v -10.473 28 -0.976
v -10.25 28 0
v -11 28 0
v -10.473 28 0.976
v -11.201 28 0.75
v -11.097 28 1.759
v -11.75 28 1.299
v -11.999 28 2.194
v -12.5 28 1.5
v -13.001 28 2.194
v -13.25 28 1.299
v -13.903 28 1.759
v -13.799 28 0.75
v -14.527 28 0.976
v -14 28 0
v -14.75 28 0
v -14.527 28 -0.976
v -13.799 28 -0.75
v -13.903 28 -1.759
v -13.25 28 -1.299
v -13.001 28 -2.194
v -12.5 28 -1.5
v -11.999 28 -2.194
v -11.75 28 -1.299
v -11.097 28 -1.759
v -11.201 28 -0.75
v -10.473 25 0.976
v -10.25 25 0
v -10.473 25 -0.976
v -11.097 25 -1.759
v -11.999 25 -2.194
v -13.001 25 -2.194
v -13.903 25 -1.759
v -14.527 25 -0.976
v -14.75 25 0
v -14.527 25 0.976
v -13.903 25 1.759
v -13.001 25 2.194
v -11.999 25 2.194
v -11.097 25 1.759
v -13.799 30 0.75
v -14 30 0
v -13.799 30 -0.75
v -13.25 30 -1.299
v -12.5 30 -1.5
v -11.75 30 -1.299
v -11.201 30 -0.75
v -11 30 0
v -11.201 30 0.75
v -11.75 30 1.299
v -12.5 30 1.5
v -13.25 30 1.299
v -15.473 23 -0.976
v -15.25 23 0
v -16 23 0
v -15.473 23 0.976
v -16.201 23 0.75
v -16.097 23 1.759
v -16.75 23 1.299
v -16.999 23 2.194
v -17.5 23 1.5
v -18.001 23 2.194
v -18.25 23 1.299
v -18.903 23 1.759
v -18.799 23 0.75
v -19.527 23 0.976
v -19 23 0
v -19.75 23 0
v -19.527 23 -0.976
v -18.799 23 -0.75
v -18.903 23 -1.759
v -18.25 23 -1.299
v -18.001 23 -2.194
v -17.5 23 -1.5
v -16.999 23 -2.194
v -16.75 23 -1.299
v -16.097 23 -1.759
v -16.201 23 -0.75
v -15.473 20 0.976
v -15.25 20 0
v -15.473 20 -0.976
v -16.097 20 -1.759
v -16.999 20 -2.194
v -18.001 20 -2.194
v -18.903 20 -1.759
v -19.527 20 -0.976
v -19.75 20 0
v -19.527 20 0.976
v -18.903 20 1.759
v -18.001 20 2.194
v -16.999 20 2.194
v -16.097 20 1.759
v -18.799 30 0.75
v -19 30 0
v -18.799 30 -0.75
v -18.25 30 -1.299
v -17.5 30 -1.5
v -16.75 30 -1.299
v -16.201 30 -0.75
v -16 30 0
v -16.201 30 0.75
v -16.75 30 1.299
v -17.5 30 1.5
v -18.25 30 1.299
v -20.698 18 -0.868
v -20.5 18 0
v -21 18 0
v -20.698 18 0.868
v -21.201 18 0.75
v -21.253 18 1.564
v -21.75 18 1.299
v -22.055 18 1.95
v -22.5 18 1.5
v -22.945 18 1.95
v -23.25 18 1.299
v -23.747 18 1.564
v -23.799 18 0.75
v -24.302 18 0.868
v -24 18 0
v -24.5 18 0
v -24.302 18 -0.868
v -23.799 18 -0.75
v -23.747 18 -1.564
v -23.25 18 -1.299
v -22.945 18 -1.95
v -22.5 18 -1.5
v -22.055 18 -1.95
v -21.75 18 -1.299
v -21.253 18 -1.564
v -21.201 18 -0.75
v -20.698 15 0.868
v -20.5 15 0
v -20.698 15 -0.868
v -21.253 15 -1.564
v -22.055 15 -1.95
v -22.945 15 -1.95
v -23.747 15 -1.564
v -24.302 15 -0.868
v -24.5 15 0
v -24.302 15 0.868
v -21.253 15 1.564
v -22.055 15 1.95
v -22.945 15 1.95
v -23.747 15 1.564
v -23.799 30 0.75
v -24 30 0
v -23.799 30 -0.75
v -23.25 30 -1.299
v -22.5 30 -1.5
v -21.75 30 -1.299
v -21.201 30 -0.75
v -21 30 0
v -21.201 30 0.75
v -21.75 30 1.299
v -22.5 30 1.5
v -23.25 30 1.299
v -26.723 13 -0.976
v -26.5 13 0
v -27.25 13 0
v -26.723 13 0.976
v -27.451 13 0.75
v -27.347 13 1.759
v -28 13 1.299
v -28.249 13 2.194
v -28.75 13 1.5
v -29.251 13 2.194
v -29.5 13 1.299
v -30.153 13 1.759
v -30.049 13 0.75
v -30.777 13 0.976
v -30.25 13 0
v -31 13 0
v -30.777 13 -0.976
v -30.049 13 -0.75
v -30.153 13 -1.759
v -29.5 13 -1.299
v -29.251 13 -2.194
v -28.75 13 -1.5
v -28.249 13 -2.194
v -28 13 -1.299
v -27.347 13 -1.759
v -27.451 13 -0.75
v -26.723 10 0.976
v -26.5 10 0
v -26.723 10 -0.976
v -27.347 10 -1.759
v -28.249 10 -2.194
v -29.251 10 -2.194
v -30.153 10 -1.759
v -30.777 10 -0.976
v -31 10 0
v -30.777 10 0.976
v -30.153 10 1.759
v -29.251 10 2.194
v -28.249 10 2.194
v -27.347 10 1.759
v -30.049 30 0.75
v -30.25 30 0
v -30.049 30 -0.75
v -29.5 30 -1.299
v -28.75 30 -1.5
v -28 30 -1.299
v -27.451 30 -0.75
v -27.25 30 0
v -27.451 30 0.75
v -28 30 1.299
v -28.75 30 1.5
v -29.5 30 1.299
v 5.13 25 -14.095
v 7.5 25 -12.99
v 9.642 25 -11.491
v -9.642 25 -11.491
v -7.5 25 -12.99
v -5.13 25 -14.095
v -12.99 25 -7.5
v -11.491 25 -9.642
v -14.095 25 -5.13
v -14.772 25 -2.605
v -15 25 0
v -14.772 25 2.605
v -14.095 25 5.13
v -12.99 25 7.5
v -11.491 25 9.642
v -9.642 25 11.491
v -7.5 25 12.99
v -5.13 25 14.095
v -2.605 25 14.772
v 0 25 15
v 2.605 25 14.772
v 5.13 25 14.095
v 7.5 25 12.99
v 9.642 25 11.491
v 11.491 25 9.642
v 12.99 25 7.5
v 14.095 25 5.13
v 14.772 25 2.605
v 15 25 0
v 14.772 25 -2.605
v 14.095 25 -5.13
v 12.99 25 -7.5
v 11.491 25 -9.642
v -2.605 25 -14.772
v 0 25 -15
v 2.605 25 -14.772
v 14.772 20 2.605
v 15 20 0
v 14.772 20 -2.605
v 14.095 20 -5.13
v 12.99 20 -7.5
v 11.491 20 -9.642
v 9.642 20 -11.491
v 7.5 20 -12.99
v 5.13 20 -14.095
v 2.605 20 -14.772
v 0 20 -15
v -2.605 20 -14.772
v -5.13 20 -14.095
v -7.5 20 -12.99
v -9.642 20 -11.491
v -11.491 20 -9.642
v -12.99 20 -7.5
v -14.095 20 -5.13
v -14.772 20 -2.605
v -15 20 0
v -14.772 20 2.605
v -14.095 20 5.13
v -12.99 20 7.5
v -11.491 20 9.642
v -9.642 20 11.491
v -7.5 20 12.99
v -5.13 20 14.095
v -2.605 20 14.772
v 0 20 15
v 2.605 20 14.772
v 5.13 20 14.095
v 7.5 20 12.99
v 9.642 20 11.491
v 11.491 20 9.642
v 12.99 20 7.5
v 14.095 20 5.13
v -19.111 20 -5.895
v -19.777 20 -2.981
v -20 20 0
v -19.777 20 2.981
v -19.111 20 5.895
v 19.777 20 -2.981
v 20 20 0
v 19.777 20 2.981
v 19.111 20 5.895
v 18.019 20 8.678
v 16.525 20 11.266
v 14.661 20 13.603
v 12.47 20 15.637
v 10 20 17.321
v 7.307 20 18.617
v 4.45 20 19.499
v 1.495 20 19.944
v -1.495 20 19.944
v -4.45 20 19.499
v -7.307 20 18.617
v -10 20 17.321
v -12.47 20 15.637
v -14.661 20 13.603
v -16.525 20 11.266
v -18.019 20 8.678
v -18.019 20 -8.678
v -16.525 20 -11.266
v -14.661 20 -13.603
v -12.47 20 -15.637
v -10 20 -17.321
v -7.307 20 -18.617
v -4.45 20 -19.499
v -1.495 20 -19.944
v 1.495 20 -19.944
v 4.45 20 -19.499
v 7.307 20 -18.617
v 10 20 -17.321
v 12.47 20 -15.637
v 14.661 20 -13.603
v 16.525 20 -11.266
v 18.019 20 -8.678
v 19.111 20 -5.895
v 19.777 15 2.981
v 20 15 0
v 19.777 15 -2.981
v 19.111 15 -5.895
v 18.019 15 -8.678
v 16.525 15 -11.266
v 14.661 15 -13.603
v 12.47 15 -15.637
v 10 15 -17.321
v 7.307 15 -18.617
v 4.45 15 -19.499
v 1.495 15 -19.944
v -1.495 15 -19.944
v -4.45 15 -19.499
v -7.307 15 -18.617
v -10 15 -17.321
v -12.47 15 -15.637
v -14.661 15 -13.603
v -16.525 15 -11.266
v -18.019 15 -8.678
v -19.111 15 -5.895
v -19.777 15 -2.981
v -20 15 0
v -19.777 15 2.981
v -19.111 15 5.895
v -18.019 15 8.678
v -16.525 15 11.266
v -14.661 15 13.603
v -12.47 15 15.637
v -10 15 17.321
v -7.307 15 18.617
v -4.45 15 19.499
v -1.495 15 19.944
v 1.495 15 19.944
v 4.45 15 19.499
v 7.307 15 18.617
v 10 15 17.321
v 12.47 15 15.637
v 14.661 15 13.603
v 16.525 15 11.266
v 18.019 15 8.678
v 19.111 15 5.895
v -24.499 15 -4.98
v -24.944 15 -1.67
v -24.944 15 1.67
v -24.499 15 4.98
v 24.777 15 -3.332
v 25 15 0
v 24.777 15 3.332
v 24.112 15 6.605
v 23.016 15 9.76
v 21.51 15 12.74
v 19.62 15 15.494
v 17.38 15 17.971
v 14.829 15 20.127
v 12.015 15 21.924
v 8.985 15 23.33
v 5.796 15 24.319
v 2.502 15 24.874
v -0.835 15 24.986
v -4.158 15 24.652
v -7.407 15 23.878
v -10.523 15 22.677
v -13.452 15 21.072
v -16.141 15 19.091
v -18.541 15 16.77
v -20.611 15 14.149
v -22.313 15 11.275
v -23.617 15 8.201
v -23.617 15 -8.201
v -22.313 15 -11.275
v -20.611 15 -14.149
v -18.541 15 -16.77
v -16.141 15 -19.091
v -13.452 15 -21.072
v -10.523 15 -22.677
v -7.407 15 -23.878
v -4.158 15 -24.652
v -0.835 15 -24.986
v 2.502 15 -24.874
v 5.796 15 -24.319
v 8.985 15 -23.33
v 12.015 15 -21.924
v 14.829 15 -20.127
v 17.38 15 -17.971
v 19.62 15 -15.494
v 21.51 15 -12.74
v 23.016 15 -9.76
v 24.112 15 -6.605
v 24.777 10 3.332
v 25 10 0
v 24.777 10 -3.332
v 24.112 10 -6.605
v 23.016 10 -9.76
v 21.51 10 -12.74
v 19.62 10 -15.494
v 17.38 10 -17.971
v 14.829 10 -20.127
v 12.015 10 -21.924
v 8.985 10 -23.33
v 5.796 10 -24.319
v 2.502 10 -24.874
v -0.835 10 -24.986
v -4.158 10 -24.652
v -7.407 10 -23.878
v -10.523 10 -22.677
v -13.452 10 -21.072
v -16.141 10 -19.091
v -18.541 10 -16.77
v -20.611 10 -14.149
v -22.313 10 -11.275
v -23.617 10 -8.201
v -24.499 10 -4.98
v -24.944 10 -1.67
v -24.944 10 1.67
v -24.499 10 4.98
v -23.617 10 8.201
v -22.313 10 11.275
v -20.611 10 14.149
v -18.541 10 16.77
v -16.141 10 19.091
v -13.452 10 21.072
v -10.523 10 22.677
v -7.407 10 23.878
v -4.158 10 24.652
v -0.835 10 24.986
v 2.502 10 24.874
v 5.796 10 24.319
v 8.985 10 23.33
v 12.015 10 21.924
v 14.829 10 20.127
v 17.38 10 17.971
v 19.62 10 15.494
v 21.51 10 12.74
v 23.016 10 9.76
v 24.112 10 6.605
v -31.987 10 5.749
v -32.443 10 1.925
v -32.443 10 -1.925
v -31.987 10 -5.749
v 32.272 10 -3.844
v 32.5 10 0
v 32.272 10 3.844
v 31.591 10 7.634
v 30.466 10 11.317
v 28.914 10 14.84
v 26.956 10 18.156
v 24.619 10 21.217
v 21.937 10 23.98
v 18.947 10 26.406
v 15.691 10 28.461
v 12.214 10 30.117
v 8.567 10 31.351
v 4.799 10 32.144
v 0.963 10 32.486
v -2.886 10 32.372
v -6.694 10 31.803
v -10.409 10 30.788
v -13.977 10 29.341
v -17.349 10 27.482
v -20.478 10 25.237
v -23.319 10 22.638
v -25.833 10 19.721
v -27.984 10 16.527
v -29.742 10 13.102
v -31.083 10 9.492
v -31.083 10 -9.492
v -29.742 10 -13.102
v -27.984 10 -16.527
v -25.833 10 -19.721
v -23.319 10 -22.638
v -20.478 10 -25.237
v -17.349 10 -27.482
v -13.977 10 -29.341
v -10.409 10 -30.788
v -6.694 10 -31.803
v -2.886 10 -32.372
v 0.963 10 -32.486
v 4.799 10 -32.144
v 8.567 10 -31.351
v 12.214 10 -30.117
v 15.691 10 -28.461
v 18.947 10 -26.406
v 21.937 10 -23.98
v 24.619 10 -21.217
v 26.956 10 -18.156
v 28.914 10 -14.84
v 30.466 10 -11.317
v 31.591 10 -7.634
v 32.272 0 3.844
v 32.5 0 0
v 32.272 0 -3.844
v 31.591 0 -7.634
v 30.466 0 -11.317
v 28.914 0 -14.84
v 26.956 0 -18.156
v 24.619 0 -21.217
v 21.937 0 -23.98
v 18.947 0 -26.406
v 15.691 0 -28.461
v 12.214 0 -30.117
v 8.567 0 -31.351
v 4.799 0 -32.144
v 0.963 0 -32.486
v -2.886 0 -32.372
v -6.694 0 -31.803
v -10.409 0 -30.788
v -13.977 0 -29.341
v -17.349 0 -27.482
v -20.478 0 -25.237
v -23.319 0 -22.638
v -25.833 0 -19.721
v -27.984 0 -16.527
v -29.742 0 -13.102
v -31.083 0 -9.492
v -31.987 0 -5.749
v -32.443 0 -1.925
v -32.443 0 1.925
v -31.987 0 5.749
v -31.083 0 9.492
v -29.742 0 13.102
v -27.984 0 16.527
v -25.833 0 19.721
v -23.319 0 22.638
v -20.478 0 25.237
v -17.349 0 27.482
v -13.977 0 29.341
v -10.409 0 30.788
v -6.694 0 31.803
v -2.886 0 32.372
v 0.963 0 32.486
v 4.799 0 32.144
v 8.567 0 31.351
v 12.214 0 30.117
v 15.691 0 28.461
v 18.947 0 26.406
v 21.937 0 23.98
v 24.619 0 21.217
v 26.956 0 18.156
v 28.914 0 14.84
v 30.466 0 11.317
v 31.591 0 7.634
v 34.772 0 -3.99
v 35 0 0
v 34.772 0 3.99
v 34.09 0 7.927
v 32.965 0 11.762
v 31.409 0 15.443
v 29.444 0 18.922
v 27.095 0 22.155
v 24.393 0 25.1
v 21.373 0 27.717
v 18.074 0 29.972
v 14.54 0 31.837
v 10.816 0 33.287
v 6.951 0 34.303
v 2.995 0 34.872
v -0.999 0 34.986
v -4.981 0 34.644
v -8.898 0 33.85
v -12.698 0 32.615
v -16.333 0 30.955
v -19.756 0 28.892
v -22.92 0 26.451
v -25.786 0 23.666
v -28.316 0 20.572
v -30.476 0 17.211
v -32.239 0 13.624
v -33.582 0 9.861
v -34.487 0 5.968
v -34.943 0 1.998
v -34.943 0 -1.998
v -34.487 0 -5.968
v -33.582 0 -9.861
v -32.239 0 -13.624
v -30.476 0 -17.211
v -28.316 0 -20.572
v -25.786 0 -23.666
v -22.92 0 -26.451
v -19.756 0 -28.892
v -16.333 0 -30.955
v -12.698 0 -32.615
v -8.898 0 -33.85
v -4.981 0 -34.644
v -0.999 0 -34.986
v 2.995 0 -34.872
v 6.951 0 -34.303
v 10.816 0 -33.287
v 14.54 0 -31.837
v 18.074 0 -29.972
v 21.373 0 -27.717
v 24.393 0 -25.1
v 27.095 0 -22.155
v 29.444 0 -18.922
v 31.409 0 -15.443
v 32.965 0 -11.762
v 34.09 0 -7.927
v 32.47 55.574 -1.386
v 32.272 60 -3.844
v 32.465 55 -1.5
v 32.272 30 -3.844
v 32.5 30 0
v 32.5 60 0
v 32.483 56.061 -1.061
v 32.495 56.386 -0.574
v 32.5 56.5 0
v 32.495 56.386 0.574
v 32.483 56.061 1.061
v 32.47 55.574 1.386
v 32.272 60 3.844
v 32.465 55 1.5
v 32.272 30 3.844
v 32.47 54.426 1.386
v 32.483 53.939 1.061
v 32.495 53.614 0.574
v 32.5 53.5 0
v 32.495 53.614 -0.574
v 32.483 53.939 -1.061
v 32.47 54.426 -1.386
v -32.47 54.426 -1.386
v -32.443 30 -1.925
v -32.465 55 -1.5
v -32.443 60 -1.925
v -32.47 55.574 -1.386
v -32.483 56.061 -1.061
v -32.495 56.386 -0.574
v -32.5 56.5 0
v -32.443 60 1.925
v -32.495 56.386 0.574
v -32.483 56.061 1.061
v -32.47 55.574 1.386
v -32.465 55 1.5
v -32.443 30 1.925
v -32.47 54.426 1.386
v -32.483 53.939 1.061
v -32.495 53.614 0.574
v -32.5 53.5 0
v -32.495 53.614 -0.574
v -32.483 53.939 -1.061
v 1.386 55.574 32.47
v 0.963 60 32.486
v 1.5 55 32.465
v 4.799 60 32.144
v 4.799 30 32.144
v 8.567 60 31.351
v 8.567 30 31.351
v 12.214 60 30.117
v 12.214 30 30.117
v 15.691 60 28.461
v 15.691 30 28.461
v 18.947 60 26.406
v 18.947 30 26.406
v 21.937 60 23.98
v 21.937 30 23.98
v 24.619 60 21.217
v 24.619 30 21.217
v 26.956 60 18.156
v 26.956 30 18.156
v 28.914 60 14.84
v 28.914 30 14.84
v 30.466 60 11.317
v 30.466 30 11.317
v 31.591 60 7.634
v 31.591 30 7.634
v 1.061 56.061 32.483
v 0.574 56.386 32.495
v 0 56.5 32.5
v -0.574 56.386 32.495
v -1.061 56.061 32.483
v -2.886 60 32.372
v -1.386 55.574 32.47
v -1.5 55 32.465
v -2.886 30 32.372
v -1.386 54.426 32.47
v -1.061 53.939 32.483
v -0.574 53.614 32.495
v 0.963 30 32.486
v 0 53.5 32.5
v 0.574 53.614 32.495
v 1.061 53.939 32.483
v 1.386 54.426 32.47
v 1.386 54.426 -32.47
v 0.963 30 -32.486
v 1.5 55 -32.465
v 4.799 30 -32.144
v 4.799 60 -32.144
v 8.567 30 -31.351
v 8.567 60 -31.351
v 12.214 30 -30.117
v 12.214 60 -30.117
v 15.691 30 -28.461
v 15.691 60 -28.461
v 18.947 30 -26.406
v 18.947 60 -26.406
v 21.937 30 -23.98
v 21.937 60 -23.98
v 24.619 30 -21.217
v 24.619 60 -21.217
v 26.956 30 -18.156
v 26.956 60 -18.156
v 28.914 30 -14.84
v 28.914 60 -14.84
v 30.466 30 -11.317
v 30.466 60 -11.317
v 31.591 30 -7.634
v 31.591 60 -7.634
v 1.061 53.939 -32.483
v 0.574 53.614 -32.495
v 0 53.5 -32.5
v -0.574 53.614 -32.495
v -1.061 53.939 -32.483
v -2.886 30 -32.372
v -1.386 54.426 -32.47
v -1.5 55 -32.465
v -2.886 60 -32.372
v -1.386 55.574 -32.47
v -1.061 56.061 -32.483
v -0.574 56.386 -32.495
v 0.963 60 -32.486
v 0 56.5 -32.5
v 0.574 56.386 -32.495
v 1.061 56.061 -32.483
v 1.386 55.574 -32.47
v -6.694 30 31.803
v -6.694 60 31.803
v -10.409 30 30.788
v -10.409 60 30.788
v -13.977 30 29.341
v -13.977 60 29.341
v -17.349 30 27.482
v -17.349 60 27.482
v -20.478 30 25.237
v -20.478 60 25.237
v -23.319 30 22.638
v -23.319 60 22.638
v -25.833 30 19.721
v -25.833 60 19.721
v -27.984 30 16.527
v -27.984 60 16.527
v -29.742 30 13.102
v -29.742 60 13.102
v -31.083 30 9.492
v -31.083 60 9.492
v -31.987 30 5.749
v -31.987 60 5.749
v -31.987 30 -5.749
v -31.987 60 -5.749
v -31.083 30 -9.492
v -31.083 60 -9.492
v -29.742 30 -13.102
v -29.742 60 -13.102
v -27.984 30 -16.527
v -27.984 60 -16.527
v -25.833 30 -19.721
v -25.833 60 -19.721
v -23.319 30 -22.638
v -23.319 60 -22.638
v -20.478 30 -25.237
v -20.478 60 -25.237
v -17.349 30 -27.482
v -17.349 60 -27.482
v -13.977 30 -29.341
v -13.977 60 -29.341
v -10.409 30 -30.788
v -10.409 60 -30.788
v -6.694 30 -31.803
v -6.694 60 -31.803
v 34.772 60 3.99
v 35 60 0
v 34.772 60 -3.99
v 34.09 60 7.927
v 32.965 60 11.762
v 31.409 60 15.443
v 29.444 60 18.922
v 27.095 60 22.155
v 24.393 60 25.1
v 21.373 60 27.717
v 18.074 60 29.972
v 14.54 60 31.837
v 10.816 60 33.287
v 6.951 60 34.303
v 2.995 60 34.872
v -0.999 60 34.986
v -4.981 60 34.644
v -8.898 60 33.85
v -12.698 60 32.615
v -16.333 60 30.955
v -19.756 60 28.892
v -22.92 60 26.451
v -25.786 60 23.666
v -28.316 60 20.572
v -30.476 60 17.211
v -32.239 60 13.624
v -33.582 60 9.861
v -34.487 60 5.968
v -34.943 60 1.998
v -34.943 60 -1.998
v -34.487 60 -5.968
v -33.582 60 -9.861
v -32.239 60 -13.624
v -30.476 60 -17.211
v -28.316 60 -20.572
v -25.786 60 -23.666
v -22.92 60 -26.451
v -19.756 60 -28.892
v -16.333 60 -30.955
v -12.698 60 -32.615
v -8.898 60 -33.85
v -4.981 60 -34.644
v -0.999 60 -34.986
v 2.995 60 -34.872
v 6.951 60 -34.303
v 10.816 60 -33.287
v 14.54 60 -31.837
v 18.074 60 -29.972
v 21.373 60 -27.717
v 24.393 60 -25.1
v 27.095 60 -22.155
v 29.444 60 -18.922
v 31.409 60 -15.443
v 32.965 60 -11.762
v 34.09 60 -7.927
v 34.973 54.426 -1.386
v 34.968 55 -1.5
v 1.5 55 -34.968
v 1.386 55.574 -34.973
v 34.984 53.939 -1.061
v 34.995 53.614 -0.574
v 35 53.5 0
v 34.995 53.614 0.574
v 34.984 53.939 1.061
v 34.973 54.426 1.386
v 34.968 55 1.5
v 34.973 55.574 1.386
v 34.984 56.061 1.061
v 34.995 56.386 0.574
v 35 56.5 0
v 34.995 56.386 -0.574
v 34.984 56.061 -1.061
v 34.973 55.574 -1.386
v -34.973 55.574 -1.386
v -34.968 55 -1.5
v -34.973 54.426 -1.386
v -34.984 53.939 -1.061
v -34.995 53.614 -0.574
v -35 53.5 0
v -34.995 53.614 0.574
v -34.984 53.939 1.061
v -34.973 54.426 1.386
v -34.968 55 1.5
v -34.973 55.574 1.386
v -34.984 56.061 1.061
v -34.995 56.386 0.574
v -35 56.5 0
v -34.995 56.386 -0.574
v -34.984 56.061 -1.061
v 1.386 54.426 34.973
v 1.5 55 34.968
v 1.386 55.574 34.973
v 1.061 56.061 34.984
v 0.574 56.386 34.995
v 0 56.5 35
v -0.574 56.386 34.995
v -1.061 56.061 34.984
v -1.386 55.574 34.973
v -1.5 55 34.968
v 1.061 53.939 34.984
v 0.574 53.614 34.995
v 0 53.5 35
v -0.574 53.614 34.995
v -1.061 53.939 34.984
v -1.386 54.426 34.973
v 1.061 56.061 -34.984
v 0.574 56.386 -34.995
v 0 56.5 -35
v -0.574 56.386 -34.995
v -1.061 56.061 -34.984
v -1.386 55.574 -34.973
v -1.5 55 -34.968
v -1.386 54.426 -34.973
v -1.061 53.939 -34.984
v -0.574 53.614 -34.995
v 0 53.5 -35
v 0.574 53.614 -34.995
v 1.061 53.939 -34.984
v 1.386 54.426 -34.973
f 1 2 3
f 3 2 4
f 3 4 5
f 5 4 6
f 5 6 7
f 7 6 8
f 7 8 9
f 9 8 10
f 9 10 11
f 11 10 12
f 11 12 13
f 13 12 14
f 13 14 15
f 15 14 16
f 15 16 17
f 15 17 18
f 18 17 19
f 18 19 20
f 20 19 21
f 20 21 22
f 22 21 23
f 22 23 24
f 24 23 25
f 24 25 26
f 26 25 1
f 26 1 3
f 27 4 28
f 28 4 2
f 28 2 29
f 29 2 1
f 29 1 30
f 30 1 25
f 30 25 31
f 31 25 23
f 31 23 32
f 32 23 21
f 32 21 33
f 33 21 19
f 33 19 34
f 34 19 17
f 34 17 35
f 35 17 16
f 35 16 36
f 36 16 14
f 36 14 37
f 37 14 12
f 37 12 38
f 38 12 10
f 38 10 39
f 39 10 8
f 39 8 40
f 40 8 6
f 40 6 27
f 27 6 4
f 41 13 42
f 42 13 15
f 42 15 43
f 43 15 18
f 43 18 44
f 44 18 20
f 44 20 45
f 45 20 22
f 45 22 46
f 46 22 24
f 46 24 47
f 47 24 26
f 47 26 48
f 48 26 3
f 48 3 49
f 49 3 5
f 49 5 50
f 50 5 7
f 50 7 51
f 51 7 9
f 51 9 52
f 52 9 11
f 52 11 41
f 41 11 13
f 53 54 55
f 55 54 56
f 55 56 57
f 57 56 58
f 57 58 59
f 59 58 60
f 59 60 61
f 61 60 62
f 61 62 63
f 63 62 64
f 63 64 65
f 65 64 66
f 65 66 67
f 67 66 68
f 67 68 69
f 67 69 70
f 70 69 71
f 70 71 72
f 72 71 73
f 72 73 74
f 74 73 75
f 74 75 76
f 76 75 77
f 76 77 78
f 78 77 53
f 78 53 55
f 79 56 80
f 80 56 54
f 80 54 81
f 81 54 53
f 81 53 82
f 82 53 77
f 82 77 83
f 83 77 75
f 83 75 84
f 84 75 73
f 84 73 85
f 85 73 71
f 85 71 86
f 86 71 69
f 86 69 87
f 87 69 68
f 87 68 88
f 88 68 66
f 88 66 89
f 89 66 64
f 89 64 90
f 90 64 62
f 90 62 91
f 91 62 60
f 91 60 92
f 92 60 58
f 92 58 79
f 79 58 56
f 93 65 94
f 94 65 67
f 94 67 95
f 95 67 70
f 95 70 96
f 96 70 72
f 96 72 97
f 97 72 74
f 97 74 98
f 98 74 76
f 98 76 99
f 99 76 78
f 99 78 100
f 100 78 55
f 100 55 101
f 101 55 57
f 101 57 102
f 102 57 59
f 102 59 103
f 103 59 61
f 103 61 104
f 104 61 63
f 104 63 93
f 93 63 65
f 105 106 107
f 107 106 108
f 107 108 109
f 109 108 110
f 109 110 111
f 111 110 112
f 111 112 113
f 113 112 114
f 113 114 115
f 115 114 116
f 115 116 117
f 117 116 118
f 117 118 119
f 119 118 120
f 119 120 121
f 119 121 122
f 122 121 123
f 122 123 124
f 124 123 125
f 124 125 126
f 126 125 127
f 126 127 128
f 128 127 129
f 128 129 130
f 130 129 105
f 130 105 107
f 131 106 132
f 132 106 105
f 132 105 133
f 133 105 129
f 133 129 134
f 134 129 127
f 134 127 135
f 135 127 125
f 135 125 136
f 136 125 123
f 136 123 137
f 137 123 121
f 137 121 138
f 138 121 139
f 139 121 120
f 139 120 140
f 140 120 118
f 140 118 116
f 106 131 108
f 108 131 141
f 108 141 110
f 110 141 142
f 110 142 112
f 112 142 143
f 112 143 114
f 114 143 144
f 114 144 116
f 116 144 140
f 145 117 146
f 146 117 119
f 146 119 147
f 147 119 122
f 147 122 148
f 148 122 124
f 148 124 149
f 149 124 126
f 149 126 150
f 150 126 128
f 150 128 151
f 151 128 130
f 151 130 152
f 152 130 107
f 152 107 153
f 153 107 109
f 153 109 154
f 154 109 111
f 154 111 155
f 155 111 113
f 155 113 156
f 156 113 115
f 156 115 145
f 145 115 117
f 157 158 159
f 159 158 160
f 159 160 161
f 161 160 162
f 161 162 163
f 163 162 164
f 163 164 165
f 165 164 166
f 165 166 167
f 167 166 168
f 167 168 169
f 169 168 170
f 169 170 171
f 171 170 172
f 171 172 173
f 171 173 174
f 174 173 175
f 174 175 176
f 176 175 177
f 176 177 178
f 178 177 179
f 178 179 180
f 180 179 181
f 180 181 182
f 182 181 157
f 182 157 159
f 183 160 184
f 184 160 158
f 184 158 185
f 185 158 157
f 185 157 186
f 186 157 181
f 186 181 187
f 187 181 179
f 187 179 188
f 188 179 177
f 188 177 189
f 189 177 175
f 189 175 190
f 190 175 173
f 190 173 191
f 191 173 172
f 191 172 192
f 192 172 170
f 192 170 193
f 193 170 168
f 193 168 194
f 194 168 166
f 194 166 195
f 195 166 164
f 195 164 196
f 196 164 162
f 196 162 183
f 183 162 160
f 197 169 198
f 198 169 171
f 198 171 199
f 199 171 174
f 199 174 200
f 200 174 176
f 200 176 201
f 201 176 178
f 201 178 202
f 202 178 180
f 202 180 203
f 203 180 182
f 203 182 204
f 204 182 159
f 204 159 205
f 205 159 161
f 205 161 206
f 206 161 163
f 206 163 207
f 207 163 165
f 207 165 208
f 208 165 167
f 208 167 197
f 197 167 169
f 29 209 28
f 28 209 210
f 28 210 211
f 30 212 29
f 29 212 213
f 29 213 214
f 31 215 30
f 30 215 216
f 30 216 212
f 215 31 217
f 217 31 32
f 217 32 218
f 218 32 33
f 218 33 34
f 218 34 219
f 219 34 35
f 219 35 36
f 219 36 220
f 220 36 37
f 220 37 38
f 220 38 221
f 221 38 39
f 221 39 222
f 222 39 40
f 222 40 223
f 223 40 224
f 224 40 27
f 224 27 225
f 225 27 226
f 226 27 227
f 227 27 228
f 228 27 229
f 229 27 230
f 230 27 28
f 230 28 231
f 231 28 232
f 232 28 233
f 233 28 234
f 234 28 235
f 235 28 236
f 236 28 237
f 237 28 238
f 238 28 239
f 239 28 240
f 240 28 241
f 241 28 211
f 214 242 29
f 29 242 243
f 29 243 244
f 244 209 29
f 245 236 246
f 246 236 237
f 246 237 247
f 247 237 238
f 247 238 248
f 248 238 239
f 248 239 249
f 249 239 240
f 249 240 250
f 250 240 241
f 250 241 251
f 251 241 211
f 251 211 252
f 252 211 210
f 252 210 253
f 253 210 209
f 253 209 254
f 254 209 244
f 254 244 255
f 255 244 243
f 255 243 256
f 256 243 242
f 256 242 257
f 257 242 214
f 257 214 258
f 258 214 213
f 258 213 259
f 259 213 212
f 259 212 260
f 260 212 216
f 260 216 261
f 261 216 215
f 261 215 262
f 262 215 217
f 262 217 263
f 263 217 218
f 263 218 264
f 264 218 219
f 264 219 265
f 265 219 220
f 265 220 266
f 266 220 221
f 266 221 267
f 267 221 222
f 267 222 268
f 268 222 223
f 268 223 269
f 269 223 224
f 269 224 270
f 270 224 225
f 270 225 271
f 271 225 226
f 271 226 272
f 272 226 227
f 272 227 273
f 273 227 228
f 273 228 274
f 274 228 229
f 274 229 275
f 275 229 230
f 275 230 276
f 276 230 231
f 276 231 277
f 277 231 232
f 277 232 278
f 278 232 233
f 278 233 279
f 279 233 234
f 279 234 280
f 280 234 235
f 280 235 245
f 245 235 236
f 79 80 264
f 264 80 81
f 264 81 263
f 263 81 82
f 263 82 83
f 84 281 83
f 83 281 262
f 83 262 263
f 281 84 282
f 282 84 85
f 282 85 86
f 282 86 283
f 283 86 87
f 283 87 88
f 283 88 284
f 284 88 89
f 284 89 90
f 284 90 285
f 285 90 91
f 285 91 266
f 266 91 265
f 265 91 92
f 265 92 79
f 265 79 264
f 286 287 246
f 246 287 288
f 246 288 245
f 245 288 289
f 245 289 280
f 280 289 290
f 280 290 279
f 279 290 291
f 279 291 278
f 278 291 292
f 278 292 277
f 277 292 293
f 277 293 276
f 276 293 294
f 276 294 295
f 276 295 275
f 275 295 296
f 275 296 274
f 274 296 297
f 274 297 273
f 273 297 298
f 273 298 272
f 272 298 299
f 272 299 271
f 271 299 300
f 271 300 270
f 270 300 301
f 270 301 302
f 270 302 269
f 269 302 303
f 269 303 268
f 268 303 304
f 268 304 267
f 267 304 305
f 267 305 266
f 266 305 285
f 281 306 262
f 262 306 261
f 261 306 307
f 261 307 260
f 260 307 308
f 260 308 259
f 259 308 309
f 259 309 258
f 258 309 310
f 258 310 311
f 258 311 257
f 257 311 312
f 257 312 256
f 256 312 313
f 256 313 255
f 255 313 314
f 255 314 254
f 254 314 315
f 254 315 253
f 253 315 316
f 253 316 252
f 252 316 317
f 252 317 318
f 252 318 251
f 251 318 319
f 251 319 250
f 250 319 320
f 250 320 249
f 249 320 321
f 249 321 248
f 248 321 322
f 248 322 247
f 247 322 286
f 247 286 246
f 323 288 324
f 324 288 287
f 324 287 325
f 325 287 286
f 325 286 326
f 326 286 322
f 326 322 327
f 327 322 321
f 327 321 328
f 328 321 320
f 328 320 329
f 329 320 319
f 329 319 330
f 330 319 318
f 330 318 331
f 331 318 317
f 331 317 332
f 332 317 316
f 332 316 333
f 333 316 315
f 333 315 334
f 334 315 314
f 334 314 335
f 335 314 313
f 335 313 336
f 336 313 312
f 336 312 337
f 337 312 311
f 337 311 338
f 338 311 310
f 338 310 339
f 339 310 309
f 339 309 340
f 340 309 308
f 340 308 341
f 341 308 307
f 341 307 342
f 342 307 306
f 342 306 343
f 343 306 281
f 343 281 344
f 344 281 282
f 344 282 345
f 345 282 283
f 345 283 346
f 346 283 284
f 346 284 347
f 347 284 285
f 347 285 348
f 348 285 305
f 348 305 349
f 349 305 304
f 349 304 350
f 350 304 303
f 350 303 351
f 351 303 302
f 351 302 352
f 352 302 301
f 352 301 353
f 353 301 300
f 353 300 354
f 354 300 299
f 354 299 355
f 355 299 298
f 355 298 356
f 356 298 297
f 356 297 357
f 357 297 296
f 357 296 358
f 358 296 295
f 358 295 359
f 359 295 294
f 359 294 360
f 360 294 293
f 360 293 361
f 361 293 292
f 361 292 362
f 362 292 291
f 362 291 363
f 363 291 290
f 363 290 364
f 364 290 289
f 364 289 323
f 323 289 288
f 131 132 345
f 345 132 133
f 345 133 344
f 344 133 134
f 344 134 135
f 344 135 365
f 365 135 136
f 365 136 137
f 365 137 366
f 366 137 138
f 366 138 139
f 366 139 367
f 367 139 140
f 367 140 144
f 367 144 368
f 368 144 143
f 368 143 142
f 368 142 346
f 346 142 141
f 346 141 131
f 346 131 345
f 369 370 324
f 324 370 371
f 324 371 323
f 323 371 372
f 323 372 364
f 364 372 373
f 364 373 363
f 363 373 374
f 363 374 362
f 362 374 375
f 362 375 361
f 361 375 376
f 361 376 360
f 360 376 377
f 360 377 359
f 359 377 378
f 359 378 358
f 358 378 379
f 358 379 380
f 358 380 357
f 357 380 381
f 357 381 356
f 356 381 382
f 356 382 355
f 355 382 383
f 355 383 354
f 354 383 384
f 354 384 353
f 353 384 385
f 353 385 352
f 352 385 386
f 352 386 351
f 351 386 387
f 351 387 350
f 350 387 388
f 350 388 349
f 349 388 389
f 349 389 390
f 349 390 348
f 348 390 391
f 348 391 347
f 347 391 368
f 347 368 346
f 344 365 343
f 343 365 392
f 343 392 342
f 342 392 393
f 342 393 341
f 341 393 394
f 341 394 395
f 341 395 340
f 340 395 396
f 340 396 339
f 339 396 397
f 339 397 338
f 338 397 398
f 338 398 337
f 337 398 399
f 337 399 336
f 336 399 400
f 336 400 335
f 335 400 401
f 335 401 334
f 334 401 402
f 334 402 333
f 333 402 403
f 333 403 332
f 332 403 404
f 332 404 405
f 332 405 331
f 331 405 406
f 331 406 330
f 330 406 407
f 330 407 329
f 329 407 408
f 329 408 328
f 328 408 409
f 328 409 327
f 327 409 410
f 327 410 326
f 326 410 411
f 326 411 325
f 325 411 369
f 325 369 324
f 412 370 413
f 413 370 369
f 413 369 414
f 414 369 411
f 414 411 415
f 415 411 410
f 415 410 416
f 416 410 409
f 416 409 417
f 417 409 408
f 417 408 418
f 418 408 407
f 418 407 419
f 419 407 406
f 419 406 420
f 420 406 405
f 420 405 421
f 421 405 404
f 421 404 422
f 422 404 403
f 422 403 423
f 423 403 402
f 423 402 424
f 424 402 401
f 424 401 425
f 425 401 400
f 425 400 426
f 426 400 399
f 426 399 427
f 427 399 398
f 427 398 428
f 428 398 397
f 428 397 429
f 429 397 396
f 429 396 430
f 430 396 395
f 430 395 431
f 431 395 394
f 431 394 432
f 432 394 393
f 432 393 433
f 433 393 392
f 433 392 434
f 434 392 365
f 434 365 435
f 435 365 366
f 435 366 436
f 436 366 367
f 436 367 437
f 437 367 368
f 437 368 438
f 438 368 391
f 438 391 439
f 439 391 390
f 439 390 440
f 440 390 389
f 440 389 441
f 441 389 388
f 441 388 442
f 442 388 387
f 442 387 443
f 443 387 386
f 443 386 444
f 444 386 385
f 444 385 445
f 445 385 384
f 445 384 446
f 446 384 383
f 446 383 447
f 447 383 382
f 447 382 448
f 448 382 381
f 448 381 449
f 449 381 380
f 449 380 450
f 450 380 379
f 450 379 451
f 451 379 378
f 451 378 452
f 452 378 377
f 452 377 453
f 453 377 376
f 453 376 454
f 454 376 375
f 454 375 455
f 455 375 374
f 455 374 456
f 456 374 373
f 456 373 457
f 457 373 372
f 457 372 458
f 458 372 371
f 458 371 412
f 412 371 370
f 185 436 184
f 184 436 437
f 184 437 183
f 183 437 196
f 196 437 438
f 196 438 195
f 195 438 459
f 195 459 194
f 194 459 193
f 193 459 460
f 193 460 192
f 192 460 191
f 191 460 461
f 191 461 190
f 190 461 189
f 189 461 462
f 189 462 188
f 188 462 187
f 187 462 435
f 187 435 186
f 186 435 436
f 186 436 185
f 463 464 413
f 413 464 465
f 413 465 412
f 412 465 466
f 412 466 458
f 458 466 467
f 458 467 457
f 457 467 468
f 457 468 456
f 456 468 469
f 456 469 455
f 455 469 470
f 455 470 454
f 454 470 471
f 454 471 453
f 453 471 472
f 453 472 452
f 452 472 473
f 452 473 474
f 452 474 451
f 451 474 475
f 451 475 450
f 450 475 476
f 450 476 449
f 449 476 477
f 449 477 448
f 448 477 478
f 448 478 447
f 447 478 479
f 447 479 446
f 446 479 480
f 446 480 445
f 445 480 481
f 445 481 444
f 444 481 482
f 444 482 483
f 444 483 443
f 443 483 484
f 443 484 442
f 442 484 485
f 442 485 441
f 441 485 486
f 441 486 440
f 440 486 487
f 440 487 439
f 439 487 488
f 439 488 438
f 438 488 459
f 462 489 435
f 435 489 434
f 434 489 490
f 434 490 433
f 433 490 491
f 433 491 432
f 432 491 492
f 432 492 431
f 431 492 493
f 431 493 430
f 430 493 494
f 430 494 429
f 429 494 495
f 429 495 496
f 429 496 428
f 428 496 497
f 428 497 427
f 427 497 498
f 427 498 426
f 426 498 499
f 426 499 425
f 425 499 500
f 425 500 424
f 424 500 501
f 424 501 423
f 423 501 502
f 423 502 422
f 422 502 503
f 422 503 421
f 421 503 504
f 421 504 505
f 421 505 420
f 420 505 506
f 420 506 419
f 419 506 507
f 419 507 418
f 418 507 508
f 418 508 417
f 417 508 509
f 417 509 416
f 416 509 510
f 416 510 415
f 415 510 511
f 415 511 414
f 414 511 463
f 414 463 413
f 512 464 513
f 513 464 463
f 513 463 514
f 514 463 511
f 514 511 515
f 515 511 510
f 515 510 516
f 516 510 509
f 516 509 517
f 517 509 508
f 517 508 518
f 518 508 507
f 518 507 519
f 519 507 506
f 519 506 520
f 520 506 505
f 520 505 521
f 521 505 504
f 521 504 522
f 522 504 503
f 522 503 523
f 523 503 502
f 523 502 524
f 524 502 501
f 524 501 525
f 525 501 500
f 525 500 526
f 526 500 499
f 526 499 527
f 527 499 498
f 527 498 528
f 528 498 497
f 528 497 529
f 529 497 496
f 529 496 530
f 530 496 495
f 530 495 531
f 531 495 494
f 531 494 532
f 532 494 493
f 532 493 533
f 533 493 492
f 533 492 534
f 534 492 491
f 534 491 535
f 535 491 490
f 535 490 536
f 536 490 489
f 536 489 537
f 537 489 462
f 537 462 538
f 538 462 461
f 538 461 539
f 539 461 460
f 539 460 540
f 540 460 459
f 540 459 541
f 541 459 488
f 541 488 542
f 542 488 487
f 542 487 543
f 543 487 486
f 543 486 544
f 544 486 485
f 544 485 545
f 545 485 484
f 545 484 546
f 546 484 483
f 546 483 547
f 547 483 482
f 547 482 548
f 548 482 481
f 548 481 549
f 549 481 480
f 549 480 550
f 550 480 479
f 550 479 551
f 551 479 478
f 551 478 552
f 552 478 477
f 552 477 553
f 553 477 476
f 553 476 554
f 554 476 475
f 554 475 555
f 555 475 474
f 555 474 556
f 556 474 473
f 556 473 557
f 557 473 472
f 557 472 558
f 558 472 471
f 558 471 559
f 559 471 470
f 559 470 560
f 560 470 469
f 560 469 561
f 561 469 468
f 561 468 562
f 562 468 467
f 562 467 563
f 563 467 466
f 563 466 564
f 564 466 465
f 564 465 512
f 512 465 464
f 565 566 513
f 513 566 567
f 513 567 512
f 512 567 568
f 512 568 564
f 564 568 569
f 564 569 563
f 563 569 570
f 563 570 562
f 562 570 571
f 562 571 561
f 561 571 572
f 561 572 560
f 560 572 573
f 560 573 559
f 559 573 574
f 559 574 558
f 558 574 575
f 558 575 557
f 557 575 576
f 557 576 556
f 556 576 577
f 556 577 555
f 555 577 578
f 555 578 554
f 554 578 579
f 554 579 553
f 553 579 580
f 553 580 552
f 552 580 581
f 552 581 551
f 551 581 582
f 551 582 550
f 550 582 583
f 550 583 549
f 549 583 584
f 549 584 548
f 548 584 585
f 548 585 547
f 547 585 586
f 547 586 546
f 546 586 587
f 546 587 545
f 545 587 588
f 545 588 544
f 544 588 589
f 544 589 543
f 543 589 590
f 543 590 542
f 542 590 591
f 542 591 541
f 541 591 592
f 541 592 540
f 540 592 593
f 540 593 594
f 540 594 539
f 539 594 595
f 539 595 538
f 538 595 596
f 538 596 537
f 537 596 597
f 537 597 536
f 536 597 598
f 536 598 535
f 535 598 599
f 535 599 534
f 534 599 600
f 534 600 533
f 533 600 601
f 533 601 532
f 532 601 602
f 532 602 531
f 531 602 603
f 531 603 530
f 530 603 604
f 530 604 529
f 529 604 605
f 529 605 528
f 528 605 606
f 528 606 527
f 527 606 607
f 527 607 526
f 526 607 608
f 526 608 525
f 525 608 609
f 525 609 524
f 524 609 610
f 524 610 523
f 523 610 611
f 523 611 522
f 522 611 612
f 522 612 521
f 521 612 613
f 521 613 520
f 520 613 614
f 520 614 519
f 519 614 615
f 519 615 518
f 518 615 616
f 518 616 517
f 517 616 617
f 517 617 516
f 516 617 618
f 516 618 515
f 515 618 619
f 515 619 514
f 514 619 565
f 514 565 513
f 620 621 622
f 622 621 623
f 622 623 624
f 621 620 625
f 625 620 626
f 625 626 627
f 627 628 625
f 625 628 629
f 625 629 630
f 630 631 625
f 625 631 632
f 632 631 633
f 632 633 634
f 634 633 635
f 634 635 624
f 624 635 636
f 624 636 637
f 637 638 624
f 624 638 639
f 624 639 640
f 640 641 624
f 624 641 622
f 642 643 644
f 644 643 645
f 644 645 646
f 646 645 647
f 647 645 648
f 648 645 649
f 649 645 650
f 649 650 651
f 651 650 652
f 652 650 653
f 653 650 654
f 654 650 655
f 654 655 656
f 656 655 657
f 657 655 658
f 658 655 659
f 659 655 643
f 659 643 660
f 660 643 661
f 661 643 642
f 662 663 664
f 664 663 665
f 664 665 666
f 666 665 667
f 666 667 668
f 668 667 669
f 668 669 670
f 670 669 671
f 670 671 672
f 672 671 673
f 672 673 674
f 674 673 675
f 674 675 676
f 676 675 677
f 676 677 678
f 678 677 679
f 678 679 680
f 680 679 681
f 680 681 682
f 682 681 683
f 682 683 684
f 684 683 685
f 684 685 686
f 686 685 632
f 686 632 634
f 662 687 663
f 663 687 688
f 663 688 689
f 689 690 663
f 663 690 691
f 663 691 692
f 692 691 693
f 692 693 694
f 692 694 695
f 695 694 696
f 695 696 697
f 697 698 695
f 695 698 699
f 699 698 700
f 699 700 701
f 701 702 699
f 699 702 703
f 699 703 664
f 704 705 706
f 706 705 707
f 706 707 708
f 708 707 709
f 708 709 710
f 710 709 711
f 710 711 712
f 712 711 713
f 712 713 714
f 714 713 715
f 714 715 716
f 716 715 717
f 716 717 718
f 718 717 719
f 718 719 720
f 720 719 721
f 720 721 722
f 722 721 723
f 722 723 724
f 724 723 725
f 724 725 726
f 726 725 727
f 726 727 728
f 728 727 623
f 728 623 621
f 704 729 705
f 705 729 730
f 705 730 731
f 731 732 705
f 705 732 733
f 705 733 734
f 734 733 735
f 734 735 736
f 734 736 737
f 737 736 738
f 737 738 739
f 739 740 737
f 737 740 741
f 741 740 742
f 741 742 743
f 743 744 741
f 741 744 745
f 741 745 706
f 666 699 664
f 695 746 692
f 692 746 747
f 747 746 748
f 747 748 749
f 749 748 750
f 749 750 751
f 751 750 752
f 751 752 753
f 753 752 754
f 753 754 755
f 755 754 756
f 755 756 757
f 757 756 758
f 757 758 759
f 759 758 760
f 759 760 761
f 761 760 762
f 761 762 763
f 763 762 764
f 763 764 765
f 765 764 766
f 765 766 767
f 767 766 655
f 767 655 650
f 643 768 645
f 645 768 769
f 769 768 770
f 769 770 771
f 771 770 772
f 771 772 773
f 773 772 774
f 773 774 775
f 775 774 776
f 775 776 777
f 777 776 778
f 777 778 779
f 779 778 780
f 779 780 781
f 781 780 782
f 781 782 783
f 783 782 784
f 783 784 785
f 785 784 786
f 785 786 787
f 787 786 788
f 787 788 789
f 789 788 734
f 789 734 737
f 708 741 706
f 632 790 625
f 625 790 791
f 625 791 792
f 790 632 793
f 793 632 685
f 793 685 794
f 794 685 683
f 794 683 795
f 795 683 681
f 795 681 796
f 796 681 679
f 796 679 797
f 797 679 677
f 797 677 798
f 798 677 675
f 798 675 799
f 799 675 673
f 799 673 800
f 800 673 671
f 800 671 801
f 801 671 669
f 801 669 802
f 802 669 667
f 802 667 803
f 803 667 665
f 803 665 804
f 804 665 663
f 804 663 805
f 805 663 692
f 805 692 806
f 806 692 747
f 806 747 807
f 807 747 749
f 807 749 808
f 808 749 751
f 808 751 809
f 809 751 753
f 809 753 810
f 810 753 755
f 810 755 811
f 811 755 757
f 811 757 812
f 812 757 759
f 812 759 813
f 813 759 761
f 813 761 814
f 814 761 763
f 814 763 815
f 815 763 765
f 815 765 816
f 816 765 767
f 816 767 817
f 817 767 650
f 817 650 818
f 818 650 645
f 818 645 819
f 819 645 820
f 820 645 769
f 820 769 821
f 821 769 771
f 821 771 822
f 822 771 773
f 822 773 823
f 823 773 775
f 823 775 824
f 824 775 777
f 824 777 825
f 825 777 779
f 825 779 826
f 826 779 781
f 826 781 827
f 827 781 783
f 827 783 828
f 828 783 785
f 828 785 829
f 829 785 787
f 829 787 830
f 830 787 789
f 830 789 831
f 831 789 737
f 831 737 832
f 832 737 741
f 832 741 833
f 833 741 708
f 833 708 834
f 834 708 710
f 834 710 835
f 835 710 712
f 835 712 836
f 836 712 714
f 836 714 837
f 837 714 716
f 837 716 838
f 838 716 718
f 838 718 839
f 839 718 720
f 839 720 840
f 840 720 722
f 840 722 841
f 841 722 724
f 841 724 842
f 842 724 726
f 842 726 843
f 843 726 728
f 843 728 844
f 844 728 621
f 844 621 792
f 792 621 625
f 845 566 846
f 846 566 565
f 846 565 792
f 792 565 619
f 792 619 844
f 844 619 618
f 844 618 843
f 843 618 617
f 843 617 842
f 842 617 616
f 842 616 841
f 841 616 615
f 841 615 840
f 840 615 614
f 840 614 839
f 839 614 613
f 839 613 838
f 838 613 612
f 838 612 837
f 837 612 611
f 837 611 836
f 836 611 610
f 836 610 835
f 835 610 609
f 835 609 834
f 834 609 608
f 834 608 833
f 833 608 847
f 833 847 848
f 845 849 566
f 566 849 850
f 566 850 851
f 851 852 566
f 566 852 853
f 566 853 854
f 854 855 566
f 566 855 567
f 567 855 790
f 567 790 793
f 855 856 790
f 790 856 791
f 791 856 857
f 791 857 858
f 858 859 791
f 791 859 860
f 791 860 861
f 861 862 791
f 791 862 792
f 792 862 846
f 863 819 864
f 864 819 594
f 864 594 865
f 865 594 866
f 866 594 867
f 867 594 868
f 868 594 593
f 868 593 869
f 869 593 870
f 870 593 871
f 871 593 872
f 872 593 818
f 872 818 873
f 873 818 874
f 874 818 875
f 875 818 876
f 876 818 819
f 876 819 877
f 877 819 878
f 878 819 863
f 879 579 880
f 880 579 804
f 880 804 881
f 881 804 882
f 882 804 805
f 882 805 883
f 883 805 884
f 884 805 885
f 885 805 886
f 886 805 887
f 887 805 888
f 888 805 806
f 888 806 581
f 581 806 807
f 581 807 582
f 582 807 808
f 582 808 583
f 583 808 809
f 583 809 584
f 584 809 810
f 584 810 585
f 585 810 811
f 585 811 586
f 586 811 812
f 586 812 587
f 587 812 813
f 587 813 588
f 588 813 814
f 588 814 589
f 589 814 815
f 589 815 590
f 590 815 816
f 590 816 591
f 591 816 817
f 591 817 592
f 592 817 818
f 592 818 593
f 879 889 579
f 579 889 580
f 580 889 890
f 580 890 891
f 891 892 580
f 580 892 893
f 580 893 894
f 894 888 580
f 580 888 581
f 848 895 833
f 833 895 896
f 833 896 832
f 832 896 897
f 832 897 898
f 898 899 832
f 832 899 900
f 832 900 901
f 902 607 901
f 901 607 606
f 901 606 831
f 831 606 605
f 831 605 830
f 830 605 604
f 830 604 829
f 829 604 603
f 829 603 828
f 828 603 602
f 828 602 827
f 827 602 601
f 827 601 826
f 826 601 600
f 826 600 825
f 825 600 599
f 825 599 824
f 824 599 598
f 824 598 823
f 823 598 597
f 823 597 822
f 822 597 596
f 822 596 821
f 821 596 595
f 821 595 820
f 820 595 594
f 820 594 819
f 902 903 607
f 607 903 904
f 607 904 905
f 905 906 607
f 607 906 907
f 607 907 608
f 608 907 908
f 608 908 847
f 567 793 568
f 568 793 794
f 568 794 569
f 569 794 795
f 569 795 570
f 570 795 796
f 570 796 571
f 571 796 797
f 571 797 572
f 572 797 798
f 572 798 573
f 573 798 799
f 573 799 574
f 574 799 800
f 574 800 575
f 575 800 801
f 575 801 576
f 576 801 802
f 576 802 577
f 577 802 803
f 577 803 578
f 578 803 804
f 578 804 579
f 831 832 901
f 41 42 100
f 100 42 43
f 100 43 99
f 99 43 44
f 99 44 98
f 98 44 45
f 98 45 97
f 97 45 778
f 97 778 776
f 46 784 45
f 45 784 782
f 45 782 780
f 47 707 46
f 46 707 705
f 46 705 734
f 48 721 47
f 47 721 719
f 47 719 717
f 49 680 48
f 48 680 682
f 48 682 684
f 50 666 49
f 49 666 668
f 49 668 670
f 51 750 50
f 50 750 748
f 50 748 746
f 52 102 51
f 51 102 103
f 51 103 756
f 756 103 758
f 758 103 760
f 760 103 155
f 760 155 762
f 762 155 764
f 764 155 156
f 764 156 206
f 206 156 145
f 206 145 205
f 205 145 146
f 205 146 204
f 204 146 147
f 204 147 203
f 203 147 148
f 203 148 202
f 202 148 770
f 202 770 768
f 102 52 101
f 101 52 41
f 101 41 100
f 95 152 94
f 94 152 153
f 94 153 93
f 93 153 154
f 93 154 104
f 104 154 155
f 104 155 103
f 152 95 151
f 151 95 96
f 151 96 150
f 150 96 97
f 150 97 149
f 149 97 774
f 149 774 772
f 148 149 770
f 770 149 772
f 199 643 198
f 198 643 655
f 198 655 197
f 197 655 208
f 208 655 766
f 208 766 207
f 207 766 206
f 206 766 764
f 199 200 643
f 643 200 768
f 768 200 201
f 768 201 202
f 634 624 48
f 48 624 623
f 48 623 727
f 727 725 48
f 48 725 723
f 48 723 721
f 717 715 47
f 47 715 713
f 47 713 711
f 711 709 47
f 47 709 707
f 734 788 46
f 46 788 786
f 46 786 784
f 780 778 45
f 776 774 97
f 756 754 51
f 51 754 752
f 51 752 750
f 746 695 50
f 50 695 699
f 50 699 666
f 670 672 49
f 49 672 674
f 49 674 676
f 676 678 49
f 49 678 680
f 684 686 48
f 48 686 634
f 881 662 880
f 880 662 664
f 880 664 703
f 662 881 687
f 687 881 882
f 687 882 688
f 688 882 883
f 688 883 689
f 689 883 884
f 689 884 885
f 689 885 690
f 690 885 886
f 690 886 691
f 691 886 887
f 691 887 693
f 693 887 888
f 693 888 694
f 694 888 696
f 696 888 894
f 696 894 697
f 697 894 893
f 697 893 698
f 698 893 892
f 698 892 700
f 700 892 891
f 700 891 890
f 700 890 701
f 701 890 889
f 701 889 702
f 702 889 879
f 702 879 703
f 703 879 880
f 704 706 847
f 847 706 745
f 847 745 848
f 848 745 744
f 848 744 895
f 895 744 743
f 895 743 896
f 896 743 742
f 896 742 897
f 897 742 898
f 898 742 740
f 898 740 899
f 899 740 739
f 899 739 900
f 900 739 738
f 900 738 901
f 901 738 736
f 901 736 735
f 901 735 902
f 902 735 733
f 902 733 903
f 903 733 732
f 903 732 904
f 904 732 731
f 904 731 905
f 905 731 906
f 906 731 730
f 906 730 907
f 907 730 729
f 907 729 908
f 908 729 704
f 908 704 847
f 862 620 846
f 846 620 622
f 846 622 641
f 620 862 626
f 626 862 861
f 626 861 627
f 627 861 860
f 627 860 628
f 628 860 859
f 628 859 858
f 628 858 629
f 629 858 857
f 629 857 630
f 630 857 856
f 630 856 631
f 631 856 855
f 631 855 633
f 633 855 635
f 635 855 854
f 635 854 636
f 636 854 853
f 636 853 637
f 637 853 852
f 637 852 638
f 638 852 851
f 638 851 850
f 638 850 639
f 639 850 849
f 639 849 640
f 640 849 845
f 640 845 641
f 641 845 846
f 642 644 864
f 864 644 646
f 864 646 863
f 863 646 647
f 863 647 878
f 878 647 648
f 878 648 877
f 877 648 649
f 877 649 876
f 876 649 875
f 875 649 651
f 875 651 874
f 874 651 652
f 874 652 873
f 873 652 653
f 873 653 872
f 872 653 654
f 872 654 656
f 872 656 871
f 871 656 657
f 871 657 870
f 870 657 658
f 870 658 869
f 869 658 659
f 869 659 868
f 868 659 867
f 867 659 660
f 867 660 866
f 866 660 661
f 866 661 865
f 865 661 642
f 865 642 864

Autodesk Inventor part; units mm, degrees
ref_plane "YZ Plane" through (0, 0, 0) normal (1, 0, 0) x (0, 1, 0)
ref_plane "XZ Plane" through (0, 0, 0) normal (0, 1, 0) x (-1, 0, 0)
ref_plane "XY Plane" through (0, 0, 0) normal (0, 0, 1) x (1, 0, 0)
sketch "Sketch1" plane through (0, 0, 0) normal (0, 0, 1) x (1, 0, 0)
  line L0 (0, 0) -> (0, 25)
  line L1 (0, 60) -> (35, 60)
  line L2 (35, 60) -> (35, 0)
  line L3 (35, 0) -> (30, 0)
  line L4 (35, 0) -> (0, 35)
  line L5 (35, 0) -> (30, 0)
  line L6 (30, 0) -> (30, 5)
  line L7 (30, 5) -> (32.5, 5)
  line L8 (35, 5) -> (35, 0)
  line L9 (30, 5) -> (25, 5)
  line L10 (25, 5) -> (25, 10)
  line L11 (25, 10) -> (30, 10)
  line L12 (30, 10) -> (30, 5)
  line L13 (25, 10) -> (20, 10)
  line L14 (20, 10) -> (20, 15)
  line L15 (20, 15) -> (25, 15)
  line L16 (25, 15) -> (25, 10)
  line L17 (20, 15) -> (15, 15)
  line L18 (15, 15) -> (15, 20)
  line L19 (15, 20) -> (20, 20)
  line L20 (20, 20) -> (20, 15)
  line L21 (15, 20) -> (10, 20)
  line L22 (10, 20) -> (10, 25)
  line L23 (10, 25) -> (15, 25)
  line L24 (15, 25) -> (15, 20)
  line L25 (10, 25) -> (0, 25)
  line L26 (0, 25) -> (0, 60)
  line L27 (30, 0) -> (0, 0)
  line L28 (32.5, 60) -> (32.5, 0)
  line L29 (32.5, 5) -> (35, 5)
  line L30 (27.5, 10) -> (32.5, 10)
  line L31 (0, 30) -> (10, 30)
  line L32 (10, 30) -> (32.5, 30)
  point P0 (5, 30)
  point P1 (32.5, 0)
  dimension "d0" = 60
  dimension "d1" = 35
  dimension "d2" = 45
  dimension "d3" = 5
  dimension "d4" = 5
  dimension "d5" = 5
  dimension "d6" = 5
  dimension "d7" = 5
  dimension "d8" = 2.5
  dimension "d9" = 5
revolve "Revolution1" add sketch "Sketch1" angle 360 about axis through (0, 25, 0) along (0, 1, 0) contours L26 L31 L4 L25 | L4 L31 L32 L28 L30 L11 L16 L15 L20 L19 L24 L23 | L28 L4 L3 | L4 L28 L29 L2 | L28 L1 L2 L29
sketch "Sketch4" plane through (0, 10, 0) normal (0, -1, 0) x (1, 0, 0)
  circle A0 centre (0, 0) radius 32.5 projected
  circle A1 centre (0, 0) radius 25 projected
  line L0 (-32.5, 0) -> (-25, 0)
  point P0 (-28.75, 0)
sketch "Sketch5" plane through (0, 15, 0) normal (0, -1, 0) x (1, 0, 0)
  circle A0 centre (0, 0) radius 25 projected
  circle A1 centre (0, 0) radius 20 projected
  line L0 (-25, 0) -> (-20, 0)
  point P0 (-22.5, 0)
sketch "Sketch6" plane through (0, 20, 0) normal (0, -1, 0) x (1, 0, 0)
  circle A0 centre (0, 0) radius 20 projected
  circle A1 centre (0, 0) radius 15 projected
  line L0 (-20, 0) -> (-15, 0)
  point P0 (-17.5, 0)
sketch "Sketch7" plane through (0, 25, 0) normal (0, -1, 0) x (1, 0, 0)
  circle A0 centre (0, 0) radius 15 projected
  line L0 (-15, 0) -> (-12.5, 0)
  dimension "d19" = 2.5
hole "Hole2" at (-28.75, 10, 0) direction (0, 1, 0) diameter 3 end through all counterbore diameter 4.5 counterbore depth 3
hole "Hole3" at (-22.5, 15, 0) direction (0, 1, 0) diameter 3 end through all counterbore diameter 4 counterbore depth 3
hole "Hole4" at (-17.5, 20, 0) direction (0, 1, 0) diameter 3 end through all counterbore diameter 4.5 counterbore depth 3
hole "Hole5" at (-12.5, 25, 0) direction (0, 1, 0) diameter 3 end through all counterbore diameter 4.5 counterbore depth 3
sketch "Sketch8" plane through (0, 0, 0) normal (0, 0, 1) x (1, 0, 0)
  line L0 (35, 60) -> (-35, 60) projected
  line L1 (35, 0) -> (-35, 0) projected
  line L2 (32.5, 60) -> (-32.5, 60) projected
  line L3 (0, 60) -> (0, 55)
  circle A0 centre (0, 55) radius 1.5
  point P0 (0, 0)
  dimension "d48" = 5
  dimension "d49" = 3
extrude "Extrusion1" cut sketch "Sketch8" along normal through all both and the other way through all
sketch "Sketch9" plane through (0, 0, 0) normal (1, 0, 0) x (0, 1, 0)
  line L0 (60, -35) -> (60, 35) projected
  line L1 (0, -35) -> (0, 35) projected
  line L2 (60, 0) -> (55, 0)
  circle A0 centre (55, 0) radius 1.5
  point P0 (0, 0)
  point P1 (55, 34.9678)
  point P2 (55, -34.9678)
  dimension "d52" = 5
  dimension "d53" = 3
extrude "Extrusion2" cut sketch "Sketch9" along normal through all both and the other way through all
properties part number "Grundkörper"
